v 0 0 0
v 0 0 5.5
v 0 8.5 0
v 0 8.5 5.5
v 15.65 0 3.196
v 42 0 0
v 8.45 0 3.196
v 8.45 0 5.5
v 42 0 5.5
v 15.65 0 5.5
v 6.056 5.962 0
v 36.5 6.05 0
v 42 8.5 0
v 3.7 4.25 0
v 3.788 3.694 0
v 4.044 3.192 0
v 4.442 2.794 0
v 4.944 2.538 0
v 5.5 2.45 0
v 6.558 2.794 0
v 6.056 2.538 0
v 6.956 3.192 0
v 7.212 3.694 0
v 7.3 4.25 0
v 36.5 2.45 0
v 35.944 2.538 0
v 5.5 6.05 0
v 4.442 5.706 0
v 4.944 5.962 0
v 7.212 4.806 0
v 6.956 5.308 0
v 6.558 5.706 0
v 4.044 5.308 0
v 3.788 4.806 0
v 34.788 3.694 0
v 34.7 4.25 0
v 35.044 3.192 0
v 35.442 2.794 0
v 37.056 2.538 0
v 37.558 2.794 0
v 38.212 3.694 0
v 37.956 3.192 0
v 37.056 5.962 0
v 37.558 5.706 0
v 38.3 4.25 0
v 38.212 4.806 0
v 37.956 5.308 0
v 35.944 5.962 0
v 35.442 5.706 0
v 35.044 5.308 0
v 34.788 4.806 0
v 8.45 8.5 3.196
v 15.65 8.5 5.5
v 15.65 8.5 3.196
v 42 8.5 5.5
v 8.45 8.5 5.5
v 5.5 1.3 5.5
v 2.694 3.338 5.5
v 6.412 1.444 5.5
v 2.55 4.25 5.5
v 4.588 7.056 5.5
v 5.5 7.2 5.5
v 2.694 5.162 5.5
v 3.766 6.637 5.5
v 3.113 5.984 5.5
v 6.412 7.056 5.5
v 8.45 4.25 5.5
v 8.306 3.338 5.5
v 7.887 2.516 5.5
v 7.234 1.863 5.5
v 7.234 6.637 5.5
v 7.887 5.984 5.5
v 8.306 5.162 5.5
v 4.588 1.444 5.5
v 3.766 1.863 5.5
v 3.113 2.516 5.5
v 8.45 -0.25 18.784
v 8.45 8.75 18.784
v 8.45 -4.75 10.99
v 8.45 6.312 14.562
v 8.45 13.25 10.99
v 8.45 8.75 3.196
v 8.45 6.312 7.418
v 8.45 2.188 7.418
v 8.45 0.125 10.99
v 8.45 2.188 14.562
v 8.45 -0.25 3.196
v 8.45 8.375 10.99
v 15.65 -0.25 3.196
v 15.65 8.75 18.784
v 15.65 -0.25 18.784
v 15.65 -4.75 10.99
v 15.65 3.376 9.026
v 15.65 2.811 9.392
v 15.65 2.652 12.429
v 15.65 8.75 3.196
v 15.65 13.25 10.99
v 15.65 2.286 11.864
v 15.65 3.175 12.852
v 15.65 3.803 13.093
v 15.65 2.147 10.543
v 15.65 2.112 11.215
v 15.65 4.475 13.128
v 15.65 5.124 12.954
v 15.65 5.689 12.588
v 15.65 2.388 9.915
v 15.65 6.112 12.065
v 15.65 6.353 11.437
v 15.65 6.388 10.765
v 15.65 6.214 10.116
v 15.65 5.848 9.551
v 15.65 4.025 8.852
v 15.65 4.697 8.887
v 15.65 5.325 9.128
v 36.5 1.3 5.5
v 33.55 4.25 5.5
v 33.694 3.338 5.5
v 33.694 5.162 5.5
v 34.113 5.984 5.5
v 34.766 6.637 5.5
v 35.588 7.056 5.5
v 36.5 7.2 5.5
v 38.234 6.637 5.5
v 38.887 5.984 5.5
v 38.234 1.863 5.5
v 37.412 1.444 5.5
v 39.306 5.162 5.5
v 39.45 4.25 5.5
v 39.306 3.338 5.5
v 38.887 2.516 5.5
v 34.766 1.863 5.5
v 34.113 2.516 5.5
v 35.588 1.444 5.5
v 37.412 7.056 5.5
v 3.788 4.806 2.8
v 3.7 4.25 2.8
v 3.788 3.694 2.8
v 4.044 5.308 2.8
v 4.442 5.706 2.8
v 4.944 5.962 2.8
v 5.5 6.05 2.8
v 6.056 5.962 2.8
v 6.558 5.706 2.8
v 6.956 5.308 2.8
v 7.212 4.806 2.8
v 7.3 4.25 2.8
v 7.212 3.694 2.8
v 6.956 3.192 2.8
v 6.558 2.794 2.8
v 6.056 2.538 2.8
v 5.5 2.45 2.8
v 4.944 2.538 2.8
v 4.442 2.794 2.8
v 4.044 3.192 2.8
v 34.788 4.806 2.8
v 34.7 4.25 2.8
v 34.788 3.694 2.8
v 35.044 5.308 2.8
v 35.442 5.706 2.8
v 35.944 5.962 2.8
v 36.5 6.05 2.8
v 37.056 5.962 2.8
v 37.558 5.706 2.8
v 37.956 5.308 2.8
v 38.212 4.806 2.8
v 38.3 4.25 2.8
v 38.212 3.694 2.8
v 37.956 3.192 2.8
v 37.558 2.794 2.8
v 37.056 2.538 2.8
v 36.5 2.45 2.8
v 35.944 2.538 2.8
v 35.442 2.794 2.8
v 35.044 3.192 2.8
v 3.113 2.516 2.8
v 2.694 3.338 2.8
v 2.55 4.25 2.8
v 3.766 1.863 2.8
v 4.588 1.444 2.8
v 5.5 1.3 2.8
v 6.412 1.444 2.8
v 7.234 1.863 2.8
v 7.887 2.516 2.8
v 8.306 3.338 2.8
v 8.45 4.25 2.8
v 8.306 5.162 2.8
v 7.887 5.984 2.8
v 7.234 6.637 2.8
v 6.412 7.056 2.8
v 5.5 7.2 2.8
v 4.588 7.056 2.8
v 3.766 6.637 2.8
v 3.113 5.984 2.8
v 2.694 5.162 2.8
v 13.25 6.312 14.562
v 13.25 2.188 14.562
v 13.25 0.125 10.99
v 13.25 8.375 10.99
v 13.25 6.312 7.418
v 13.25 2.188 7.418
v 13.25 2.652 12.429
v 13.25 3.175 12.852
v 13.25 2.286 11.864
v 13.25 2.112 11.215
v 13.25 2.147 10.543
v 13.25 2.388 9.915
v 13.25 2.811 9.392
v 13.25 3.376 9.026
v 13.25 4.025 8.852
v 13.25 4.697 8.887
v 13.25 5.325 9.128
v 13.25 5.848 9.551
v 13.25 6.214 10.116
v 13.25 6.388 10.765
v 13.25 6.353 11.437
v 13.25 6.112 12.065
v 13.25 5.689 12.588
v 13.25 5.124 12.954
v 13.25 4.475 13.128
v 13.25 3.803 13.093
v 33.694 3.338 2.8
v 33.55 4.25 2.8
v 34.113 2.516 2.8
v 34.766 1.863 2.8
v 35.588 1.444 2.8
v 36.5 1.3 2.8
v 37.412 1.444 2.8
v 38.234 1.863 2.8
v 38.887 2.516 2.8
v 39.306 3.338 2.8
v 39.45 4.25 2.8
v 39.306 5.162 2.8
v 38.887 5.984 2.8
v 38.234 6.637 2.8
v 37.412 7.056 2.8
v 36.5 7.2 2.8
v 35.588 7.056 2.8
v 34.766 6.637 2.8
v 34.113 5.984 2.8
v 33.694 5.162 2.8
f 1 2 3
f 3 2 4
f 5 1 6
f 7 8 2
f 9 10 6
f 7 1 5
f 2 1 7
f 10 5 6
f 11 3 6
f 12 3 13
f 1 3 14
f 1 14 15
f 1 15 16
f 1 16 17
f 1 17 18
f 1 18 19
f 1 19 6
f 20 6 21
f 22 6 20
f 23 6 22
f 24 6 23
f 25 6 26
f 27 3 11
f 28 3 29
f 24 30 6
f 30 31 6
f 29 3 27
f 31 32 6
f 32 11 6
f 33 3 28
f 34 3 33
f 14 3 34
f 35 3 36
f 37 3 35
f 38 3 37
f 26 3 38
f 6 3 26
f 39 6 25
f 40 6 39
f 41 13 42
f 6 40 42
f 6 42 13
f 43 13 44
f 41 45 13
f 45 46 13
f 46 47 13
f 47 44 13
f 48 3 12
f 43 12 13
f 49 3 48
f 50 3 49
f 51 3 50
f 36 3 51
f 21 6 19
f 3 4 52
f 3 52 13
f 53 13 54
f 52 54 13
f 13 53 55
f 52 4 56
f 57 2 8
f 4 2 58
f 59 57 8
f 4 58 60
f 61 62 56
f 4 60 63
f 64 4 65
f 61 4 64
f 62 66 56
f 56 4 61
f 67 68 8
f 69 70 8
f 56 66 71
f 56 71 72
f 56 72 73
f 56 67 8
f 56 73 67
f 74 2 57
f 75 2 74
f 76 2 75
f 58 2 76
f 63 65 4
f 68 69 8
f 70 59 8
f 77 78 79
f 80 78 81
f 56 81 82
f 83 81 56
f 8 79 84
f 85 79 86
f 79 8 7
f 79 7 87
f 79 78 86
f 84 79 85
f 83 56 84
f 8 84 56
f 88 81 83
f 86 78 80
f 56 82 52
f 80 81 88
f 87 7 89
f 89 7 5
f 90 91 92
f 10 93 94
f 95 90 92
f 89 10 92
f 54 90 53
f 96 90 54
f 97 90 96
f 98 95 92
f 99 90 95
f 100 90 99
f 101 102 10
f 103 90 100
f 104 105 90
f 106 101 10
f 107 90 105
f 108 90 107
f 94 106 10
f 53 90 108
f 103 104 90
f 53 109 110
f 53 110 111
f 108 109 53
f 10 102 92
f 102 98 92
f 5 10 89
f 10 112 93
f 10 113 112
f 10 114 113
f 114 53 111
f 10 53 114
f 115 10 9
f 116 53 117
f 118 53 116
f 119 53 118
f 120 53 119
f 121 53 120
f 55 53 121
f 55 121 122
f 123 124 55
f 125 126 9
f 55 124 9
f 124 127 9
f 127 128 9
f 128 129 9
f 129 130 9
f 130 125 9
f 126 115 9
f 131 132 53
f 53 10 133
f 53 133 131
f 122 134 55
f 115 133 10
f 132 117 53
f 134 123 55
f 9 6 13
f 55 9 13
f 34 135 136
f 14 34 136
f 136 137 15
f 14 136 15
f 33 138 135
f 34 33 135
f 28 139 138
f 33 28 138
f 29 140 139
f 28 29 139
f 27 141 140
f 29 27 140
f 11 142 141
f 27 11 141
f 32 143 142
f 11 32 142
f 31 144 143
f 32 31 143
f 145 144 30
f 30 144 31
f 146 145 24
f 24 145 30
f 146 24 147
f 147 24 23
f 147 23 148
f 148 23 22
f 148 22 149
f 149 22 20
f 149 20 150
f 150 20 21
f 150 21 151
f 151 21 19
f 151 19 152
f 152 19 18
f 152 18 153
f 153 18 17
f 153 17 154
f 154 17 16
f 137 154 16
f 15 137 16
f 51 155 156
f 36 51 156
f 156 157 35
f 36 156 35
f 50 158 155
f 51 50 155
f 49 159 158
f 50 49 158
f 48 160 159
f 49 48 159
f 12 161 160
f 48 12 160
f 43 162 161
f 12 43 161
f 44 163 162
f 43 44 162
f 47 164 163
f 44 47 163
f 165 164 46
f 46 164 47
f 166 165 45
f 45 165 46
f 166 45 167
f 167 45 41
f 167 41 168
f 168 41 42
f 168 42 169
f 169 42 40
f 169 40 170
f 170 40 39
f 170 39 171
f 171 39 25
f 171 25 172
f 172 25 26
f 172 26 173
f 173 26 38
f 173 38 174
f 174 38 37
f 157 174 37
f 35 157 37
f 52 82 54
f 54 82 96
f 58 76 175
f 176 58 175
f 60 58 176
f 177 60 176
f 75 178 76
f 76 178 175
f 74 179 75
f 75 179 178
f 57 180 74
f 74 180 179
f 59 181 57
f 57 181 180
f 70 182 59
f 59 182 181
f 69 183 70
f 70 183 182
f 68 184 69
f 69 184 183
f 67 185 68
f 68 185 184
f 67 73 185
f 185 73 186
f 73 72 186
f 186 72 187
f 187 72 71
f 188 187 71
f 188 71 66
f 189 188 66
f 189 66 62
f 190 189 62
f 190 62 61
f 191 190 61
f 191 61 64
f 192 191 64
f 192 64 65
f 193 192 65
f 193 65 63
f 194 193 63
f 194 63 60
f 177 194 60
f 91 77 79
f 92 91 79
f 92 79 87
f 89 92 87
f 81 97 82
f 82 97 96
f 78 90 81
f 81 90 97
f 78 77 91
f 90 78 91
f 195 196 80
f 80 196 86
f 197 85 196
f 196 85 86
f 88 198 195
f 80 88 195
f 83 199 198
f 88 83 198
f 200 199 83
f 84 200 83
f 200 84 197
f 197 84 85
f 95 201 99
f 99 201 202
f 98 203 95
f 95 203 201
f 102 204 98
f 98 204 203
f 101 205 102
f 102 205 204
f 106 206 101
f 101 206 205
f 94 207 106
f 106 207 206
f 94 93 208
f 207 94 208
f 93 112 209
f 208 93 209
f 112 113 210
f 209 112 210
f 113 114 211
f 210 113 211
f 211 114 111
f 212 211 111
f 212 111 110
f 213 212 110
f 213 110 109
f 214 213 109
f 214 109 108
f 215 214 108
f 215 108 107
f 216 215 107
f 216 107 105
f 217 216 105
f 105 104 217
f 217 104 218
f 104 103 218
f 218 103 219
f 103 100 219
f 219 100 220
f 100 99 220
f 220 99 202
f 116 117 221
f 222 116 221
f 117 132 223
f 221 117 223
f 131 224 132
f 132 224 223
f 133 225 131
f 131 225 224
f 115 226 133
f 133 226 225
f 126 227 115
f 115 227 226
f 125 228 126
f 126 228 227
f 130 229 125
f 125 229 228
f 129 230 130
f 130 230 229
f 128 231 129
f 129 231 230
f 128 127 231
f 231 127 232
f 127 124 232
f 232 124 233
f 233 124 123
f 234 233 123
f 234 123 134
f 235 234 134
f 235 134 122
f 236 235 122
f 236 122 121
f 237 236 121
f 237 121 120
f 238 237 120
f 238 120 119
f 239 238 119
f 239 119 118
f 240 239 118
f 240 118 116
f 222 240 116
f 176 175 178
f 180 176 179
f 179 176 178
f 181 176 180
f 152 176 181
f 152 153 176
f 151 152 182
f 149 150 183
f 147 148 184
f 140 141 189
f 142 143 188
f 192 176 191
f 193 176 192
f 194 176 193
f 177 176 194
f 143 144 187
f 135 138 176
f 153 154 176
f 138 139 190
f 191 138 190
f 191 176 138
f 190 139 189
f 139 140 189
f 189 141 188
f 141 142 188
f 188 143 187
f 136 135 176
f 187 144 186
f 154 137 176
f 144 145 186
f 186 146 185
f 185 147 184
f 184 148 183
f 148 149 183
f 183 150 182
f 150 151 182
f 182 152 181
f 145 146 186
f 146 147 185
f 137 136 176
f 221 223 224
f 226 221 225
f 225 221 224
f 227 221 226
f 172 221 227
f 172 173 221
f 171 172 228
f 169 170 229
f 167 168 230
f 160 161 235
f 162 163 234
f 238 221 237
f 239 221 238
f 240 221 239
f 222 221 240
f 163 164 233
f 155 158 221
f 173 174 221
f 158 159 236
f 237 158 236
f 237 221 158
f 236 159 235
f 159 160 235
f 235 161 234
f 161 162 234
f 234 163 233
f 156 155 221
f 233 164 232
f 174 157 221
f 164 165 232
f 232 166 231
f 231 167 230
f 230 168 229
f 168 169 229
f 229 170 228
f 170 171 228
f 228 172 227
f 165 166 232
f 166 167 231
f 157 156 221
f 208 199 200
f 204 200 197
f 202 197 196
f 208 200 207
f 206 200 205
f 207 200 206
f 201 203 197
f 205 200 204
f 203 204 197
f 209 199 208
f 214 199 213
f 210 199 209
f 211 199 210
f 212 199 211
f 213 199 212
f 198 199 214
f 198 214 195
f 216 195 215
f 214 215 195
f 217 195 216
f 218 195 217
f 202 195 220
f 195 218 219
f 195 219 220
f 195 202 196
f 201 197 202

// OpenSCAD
// models-i3_adjustable_z_endstop_arm
// 3D Printing Filament Spool Stand
// GNU GPL v3
// Ethan Sherman <ethan@blackguest.net>
//
// https://github.com/blackguest/models-i3_adjustable_z_endstop_arm.git


width=8.5;
length=42.0;
arm_thickness=5.5;
hole_width=31.0;

m3_r=3.6/2;
m3_head_r=2.95;
m3_head_h=2.7;

m4_r=4.3/2;
m4_nut_holder_w=18.0;
m4_nut_big_w=8.25;
m4_nut_h=3.2 * 1.5;  // multiply by 1.5 to also fit m4 locknuts
m4_nut_holder_h=m4_nut_h*1.5;

fudge=0.01;

module m4_mount(){
  bottom_m3_hole_x = (length - hole_width)/2;
  m3_hole_y = width/2;
  translate([bottom_m3_hole_x+m3_head_r,
             m3_hole_y,
             arm_thickness*2-fudge])
    rotate([30,0,0]) rotate([0,90,0])
      difference(){
        cylinder(r=m4_nut_holder_w/2, h=m4_nut_holder_h, $fn=6);
        // m4 hole
        translate([0,0,-m4_nut_holder_h*2])
          cylinder(r=m4_r, h=m4_nut_holder_h*4, $fn=20);
        translate([0,0,-m4_nut_h * 2])
          cylinder(r=m4_nut_big_w/2, h=m4_nut_h * 3, $fn=6);
      }
}

module mount_arm(){
  bottom_m3_hole_x = (length - hole_width)/2;
  top_m3_hole_x = bottom_m3_hole_x + hole_width;
  m3_hole_y = width/2;
  difference(){
    cube([length,width,arm_thickness]);
    // bottom m3 hole
    translate([bottom_m3_hole_x,
               m3_hole_y,
               -arm_thickness/2])
      cylinder(r=m3_r, h=arm_thickness*2, $fn=20);
    // bottom m3 head
    translate([bottom_m3_hole_x, m3_hole_y, arm_thickness - m3_head_h ])
      cylinder(r=m3_head_r, h=arm_thickness*2, $fn=20);
    // top m3 hole
    translate([top_m3_hole_x,
               m3_hole_y,
               -arm_thickness/2])
      cylinder(r=m3_r, h=arm_thickness*2, $fn=20);
    // bottom m3 head
    translate([top_m3_hole_x, m3_hole_y, arm_thickness - m3_head_h ])
      cylinder(r=m3_head_r, h=arm_thickness*2, $fn=20);
  }
}

union(){
  mount_arm();
  m4_mount();
}
